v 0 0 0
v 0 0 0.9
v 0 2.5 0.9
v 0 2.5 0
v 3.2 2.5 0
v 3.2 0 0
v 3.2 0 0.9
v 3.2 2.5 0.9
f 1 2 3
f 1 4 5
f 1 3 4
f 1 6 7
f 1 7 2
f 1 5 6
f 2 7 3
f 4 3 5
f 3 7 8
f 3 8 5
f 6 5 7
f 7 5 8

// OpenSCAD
/* Warning, this is a very basic generator with a lot of approximation 
input data : [VDFN, H4A, 3.2x2.5x0.9mm, 4, , B, C04-01006B]
generated by com.zoubworld.electronics.cad.model3d.Basic
Date : Sun Feb 15 10:50:49 CET 2026
*/

//body
color("black")
translate([0,0,0])
cube([3.2,2.5,0.9], center=false);
